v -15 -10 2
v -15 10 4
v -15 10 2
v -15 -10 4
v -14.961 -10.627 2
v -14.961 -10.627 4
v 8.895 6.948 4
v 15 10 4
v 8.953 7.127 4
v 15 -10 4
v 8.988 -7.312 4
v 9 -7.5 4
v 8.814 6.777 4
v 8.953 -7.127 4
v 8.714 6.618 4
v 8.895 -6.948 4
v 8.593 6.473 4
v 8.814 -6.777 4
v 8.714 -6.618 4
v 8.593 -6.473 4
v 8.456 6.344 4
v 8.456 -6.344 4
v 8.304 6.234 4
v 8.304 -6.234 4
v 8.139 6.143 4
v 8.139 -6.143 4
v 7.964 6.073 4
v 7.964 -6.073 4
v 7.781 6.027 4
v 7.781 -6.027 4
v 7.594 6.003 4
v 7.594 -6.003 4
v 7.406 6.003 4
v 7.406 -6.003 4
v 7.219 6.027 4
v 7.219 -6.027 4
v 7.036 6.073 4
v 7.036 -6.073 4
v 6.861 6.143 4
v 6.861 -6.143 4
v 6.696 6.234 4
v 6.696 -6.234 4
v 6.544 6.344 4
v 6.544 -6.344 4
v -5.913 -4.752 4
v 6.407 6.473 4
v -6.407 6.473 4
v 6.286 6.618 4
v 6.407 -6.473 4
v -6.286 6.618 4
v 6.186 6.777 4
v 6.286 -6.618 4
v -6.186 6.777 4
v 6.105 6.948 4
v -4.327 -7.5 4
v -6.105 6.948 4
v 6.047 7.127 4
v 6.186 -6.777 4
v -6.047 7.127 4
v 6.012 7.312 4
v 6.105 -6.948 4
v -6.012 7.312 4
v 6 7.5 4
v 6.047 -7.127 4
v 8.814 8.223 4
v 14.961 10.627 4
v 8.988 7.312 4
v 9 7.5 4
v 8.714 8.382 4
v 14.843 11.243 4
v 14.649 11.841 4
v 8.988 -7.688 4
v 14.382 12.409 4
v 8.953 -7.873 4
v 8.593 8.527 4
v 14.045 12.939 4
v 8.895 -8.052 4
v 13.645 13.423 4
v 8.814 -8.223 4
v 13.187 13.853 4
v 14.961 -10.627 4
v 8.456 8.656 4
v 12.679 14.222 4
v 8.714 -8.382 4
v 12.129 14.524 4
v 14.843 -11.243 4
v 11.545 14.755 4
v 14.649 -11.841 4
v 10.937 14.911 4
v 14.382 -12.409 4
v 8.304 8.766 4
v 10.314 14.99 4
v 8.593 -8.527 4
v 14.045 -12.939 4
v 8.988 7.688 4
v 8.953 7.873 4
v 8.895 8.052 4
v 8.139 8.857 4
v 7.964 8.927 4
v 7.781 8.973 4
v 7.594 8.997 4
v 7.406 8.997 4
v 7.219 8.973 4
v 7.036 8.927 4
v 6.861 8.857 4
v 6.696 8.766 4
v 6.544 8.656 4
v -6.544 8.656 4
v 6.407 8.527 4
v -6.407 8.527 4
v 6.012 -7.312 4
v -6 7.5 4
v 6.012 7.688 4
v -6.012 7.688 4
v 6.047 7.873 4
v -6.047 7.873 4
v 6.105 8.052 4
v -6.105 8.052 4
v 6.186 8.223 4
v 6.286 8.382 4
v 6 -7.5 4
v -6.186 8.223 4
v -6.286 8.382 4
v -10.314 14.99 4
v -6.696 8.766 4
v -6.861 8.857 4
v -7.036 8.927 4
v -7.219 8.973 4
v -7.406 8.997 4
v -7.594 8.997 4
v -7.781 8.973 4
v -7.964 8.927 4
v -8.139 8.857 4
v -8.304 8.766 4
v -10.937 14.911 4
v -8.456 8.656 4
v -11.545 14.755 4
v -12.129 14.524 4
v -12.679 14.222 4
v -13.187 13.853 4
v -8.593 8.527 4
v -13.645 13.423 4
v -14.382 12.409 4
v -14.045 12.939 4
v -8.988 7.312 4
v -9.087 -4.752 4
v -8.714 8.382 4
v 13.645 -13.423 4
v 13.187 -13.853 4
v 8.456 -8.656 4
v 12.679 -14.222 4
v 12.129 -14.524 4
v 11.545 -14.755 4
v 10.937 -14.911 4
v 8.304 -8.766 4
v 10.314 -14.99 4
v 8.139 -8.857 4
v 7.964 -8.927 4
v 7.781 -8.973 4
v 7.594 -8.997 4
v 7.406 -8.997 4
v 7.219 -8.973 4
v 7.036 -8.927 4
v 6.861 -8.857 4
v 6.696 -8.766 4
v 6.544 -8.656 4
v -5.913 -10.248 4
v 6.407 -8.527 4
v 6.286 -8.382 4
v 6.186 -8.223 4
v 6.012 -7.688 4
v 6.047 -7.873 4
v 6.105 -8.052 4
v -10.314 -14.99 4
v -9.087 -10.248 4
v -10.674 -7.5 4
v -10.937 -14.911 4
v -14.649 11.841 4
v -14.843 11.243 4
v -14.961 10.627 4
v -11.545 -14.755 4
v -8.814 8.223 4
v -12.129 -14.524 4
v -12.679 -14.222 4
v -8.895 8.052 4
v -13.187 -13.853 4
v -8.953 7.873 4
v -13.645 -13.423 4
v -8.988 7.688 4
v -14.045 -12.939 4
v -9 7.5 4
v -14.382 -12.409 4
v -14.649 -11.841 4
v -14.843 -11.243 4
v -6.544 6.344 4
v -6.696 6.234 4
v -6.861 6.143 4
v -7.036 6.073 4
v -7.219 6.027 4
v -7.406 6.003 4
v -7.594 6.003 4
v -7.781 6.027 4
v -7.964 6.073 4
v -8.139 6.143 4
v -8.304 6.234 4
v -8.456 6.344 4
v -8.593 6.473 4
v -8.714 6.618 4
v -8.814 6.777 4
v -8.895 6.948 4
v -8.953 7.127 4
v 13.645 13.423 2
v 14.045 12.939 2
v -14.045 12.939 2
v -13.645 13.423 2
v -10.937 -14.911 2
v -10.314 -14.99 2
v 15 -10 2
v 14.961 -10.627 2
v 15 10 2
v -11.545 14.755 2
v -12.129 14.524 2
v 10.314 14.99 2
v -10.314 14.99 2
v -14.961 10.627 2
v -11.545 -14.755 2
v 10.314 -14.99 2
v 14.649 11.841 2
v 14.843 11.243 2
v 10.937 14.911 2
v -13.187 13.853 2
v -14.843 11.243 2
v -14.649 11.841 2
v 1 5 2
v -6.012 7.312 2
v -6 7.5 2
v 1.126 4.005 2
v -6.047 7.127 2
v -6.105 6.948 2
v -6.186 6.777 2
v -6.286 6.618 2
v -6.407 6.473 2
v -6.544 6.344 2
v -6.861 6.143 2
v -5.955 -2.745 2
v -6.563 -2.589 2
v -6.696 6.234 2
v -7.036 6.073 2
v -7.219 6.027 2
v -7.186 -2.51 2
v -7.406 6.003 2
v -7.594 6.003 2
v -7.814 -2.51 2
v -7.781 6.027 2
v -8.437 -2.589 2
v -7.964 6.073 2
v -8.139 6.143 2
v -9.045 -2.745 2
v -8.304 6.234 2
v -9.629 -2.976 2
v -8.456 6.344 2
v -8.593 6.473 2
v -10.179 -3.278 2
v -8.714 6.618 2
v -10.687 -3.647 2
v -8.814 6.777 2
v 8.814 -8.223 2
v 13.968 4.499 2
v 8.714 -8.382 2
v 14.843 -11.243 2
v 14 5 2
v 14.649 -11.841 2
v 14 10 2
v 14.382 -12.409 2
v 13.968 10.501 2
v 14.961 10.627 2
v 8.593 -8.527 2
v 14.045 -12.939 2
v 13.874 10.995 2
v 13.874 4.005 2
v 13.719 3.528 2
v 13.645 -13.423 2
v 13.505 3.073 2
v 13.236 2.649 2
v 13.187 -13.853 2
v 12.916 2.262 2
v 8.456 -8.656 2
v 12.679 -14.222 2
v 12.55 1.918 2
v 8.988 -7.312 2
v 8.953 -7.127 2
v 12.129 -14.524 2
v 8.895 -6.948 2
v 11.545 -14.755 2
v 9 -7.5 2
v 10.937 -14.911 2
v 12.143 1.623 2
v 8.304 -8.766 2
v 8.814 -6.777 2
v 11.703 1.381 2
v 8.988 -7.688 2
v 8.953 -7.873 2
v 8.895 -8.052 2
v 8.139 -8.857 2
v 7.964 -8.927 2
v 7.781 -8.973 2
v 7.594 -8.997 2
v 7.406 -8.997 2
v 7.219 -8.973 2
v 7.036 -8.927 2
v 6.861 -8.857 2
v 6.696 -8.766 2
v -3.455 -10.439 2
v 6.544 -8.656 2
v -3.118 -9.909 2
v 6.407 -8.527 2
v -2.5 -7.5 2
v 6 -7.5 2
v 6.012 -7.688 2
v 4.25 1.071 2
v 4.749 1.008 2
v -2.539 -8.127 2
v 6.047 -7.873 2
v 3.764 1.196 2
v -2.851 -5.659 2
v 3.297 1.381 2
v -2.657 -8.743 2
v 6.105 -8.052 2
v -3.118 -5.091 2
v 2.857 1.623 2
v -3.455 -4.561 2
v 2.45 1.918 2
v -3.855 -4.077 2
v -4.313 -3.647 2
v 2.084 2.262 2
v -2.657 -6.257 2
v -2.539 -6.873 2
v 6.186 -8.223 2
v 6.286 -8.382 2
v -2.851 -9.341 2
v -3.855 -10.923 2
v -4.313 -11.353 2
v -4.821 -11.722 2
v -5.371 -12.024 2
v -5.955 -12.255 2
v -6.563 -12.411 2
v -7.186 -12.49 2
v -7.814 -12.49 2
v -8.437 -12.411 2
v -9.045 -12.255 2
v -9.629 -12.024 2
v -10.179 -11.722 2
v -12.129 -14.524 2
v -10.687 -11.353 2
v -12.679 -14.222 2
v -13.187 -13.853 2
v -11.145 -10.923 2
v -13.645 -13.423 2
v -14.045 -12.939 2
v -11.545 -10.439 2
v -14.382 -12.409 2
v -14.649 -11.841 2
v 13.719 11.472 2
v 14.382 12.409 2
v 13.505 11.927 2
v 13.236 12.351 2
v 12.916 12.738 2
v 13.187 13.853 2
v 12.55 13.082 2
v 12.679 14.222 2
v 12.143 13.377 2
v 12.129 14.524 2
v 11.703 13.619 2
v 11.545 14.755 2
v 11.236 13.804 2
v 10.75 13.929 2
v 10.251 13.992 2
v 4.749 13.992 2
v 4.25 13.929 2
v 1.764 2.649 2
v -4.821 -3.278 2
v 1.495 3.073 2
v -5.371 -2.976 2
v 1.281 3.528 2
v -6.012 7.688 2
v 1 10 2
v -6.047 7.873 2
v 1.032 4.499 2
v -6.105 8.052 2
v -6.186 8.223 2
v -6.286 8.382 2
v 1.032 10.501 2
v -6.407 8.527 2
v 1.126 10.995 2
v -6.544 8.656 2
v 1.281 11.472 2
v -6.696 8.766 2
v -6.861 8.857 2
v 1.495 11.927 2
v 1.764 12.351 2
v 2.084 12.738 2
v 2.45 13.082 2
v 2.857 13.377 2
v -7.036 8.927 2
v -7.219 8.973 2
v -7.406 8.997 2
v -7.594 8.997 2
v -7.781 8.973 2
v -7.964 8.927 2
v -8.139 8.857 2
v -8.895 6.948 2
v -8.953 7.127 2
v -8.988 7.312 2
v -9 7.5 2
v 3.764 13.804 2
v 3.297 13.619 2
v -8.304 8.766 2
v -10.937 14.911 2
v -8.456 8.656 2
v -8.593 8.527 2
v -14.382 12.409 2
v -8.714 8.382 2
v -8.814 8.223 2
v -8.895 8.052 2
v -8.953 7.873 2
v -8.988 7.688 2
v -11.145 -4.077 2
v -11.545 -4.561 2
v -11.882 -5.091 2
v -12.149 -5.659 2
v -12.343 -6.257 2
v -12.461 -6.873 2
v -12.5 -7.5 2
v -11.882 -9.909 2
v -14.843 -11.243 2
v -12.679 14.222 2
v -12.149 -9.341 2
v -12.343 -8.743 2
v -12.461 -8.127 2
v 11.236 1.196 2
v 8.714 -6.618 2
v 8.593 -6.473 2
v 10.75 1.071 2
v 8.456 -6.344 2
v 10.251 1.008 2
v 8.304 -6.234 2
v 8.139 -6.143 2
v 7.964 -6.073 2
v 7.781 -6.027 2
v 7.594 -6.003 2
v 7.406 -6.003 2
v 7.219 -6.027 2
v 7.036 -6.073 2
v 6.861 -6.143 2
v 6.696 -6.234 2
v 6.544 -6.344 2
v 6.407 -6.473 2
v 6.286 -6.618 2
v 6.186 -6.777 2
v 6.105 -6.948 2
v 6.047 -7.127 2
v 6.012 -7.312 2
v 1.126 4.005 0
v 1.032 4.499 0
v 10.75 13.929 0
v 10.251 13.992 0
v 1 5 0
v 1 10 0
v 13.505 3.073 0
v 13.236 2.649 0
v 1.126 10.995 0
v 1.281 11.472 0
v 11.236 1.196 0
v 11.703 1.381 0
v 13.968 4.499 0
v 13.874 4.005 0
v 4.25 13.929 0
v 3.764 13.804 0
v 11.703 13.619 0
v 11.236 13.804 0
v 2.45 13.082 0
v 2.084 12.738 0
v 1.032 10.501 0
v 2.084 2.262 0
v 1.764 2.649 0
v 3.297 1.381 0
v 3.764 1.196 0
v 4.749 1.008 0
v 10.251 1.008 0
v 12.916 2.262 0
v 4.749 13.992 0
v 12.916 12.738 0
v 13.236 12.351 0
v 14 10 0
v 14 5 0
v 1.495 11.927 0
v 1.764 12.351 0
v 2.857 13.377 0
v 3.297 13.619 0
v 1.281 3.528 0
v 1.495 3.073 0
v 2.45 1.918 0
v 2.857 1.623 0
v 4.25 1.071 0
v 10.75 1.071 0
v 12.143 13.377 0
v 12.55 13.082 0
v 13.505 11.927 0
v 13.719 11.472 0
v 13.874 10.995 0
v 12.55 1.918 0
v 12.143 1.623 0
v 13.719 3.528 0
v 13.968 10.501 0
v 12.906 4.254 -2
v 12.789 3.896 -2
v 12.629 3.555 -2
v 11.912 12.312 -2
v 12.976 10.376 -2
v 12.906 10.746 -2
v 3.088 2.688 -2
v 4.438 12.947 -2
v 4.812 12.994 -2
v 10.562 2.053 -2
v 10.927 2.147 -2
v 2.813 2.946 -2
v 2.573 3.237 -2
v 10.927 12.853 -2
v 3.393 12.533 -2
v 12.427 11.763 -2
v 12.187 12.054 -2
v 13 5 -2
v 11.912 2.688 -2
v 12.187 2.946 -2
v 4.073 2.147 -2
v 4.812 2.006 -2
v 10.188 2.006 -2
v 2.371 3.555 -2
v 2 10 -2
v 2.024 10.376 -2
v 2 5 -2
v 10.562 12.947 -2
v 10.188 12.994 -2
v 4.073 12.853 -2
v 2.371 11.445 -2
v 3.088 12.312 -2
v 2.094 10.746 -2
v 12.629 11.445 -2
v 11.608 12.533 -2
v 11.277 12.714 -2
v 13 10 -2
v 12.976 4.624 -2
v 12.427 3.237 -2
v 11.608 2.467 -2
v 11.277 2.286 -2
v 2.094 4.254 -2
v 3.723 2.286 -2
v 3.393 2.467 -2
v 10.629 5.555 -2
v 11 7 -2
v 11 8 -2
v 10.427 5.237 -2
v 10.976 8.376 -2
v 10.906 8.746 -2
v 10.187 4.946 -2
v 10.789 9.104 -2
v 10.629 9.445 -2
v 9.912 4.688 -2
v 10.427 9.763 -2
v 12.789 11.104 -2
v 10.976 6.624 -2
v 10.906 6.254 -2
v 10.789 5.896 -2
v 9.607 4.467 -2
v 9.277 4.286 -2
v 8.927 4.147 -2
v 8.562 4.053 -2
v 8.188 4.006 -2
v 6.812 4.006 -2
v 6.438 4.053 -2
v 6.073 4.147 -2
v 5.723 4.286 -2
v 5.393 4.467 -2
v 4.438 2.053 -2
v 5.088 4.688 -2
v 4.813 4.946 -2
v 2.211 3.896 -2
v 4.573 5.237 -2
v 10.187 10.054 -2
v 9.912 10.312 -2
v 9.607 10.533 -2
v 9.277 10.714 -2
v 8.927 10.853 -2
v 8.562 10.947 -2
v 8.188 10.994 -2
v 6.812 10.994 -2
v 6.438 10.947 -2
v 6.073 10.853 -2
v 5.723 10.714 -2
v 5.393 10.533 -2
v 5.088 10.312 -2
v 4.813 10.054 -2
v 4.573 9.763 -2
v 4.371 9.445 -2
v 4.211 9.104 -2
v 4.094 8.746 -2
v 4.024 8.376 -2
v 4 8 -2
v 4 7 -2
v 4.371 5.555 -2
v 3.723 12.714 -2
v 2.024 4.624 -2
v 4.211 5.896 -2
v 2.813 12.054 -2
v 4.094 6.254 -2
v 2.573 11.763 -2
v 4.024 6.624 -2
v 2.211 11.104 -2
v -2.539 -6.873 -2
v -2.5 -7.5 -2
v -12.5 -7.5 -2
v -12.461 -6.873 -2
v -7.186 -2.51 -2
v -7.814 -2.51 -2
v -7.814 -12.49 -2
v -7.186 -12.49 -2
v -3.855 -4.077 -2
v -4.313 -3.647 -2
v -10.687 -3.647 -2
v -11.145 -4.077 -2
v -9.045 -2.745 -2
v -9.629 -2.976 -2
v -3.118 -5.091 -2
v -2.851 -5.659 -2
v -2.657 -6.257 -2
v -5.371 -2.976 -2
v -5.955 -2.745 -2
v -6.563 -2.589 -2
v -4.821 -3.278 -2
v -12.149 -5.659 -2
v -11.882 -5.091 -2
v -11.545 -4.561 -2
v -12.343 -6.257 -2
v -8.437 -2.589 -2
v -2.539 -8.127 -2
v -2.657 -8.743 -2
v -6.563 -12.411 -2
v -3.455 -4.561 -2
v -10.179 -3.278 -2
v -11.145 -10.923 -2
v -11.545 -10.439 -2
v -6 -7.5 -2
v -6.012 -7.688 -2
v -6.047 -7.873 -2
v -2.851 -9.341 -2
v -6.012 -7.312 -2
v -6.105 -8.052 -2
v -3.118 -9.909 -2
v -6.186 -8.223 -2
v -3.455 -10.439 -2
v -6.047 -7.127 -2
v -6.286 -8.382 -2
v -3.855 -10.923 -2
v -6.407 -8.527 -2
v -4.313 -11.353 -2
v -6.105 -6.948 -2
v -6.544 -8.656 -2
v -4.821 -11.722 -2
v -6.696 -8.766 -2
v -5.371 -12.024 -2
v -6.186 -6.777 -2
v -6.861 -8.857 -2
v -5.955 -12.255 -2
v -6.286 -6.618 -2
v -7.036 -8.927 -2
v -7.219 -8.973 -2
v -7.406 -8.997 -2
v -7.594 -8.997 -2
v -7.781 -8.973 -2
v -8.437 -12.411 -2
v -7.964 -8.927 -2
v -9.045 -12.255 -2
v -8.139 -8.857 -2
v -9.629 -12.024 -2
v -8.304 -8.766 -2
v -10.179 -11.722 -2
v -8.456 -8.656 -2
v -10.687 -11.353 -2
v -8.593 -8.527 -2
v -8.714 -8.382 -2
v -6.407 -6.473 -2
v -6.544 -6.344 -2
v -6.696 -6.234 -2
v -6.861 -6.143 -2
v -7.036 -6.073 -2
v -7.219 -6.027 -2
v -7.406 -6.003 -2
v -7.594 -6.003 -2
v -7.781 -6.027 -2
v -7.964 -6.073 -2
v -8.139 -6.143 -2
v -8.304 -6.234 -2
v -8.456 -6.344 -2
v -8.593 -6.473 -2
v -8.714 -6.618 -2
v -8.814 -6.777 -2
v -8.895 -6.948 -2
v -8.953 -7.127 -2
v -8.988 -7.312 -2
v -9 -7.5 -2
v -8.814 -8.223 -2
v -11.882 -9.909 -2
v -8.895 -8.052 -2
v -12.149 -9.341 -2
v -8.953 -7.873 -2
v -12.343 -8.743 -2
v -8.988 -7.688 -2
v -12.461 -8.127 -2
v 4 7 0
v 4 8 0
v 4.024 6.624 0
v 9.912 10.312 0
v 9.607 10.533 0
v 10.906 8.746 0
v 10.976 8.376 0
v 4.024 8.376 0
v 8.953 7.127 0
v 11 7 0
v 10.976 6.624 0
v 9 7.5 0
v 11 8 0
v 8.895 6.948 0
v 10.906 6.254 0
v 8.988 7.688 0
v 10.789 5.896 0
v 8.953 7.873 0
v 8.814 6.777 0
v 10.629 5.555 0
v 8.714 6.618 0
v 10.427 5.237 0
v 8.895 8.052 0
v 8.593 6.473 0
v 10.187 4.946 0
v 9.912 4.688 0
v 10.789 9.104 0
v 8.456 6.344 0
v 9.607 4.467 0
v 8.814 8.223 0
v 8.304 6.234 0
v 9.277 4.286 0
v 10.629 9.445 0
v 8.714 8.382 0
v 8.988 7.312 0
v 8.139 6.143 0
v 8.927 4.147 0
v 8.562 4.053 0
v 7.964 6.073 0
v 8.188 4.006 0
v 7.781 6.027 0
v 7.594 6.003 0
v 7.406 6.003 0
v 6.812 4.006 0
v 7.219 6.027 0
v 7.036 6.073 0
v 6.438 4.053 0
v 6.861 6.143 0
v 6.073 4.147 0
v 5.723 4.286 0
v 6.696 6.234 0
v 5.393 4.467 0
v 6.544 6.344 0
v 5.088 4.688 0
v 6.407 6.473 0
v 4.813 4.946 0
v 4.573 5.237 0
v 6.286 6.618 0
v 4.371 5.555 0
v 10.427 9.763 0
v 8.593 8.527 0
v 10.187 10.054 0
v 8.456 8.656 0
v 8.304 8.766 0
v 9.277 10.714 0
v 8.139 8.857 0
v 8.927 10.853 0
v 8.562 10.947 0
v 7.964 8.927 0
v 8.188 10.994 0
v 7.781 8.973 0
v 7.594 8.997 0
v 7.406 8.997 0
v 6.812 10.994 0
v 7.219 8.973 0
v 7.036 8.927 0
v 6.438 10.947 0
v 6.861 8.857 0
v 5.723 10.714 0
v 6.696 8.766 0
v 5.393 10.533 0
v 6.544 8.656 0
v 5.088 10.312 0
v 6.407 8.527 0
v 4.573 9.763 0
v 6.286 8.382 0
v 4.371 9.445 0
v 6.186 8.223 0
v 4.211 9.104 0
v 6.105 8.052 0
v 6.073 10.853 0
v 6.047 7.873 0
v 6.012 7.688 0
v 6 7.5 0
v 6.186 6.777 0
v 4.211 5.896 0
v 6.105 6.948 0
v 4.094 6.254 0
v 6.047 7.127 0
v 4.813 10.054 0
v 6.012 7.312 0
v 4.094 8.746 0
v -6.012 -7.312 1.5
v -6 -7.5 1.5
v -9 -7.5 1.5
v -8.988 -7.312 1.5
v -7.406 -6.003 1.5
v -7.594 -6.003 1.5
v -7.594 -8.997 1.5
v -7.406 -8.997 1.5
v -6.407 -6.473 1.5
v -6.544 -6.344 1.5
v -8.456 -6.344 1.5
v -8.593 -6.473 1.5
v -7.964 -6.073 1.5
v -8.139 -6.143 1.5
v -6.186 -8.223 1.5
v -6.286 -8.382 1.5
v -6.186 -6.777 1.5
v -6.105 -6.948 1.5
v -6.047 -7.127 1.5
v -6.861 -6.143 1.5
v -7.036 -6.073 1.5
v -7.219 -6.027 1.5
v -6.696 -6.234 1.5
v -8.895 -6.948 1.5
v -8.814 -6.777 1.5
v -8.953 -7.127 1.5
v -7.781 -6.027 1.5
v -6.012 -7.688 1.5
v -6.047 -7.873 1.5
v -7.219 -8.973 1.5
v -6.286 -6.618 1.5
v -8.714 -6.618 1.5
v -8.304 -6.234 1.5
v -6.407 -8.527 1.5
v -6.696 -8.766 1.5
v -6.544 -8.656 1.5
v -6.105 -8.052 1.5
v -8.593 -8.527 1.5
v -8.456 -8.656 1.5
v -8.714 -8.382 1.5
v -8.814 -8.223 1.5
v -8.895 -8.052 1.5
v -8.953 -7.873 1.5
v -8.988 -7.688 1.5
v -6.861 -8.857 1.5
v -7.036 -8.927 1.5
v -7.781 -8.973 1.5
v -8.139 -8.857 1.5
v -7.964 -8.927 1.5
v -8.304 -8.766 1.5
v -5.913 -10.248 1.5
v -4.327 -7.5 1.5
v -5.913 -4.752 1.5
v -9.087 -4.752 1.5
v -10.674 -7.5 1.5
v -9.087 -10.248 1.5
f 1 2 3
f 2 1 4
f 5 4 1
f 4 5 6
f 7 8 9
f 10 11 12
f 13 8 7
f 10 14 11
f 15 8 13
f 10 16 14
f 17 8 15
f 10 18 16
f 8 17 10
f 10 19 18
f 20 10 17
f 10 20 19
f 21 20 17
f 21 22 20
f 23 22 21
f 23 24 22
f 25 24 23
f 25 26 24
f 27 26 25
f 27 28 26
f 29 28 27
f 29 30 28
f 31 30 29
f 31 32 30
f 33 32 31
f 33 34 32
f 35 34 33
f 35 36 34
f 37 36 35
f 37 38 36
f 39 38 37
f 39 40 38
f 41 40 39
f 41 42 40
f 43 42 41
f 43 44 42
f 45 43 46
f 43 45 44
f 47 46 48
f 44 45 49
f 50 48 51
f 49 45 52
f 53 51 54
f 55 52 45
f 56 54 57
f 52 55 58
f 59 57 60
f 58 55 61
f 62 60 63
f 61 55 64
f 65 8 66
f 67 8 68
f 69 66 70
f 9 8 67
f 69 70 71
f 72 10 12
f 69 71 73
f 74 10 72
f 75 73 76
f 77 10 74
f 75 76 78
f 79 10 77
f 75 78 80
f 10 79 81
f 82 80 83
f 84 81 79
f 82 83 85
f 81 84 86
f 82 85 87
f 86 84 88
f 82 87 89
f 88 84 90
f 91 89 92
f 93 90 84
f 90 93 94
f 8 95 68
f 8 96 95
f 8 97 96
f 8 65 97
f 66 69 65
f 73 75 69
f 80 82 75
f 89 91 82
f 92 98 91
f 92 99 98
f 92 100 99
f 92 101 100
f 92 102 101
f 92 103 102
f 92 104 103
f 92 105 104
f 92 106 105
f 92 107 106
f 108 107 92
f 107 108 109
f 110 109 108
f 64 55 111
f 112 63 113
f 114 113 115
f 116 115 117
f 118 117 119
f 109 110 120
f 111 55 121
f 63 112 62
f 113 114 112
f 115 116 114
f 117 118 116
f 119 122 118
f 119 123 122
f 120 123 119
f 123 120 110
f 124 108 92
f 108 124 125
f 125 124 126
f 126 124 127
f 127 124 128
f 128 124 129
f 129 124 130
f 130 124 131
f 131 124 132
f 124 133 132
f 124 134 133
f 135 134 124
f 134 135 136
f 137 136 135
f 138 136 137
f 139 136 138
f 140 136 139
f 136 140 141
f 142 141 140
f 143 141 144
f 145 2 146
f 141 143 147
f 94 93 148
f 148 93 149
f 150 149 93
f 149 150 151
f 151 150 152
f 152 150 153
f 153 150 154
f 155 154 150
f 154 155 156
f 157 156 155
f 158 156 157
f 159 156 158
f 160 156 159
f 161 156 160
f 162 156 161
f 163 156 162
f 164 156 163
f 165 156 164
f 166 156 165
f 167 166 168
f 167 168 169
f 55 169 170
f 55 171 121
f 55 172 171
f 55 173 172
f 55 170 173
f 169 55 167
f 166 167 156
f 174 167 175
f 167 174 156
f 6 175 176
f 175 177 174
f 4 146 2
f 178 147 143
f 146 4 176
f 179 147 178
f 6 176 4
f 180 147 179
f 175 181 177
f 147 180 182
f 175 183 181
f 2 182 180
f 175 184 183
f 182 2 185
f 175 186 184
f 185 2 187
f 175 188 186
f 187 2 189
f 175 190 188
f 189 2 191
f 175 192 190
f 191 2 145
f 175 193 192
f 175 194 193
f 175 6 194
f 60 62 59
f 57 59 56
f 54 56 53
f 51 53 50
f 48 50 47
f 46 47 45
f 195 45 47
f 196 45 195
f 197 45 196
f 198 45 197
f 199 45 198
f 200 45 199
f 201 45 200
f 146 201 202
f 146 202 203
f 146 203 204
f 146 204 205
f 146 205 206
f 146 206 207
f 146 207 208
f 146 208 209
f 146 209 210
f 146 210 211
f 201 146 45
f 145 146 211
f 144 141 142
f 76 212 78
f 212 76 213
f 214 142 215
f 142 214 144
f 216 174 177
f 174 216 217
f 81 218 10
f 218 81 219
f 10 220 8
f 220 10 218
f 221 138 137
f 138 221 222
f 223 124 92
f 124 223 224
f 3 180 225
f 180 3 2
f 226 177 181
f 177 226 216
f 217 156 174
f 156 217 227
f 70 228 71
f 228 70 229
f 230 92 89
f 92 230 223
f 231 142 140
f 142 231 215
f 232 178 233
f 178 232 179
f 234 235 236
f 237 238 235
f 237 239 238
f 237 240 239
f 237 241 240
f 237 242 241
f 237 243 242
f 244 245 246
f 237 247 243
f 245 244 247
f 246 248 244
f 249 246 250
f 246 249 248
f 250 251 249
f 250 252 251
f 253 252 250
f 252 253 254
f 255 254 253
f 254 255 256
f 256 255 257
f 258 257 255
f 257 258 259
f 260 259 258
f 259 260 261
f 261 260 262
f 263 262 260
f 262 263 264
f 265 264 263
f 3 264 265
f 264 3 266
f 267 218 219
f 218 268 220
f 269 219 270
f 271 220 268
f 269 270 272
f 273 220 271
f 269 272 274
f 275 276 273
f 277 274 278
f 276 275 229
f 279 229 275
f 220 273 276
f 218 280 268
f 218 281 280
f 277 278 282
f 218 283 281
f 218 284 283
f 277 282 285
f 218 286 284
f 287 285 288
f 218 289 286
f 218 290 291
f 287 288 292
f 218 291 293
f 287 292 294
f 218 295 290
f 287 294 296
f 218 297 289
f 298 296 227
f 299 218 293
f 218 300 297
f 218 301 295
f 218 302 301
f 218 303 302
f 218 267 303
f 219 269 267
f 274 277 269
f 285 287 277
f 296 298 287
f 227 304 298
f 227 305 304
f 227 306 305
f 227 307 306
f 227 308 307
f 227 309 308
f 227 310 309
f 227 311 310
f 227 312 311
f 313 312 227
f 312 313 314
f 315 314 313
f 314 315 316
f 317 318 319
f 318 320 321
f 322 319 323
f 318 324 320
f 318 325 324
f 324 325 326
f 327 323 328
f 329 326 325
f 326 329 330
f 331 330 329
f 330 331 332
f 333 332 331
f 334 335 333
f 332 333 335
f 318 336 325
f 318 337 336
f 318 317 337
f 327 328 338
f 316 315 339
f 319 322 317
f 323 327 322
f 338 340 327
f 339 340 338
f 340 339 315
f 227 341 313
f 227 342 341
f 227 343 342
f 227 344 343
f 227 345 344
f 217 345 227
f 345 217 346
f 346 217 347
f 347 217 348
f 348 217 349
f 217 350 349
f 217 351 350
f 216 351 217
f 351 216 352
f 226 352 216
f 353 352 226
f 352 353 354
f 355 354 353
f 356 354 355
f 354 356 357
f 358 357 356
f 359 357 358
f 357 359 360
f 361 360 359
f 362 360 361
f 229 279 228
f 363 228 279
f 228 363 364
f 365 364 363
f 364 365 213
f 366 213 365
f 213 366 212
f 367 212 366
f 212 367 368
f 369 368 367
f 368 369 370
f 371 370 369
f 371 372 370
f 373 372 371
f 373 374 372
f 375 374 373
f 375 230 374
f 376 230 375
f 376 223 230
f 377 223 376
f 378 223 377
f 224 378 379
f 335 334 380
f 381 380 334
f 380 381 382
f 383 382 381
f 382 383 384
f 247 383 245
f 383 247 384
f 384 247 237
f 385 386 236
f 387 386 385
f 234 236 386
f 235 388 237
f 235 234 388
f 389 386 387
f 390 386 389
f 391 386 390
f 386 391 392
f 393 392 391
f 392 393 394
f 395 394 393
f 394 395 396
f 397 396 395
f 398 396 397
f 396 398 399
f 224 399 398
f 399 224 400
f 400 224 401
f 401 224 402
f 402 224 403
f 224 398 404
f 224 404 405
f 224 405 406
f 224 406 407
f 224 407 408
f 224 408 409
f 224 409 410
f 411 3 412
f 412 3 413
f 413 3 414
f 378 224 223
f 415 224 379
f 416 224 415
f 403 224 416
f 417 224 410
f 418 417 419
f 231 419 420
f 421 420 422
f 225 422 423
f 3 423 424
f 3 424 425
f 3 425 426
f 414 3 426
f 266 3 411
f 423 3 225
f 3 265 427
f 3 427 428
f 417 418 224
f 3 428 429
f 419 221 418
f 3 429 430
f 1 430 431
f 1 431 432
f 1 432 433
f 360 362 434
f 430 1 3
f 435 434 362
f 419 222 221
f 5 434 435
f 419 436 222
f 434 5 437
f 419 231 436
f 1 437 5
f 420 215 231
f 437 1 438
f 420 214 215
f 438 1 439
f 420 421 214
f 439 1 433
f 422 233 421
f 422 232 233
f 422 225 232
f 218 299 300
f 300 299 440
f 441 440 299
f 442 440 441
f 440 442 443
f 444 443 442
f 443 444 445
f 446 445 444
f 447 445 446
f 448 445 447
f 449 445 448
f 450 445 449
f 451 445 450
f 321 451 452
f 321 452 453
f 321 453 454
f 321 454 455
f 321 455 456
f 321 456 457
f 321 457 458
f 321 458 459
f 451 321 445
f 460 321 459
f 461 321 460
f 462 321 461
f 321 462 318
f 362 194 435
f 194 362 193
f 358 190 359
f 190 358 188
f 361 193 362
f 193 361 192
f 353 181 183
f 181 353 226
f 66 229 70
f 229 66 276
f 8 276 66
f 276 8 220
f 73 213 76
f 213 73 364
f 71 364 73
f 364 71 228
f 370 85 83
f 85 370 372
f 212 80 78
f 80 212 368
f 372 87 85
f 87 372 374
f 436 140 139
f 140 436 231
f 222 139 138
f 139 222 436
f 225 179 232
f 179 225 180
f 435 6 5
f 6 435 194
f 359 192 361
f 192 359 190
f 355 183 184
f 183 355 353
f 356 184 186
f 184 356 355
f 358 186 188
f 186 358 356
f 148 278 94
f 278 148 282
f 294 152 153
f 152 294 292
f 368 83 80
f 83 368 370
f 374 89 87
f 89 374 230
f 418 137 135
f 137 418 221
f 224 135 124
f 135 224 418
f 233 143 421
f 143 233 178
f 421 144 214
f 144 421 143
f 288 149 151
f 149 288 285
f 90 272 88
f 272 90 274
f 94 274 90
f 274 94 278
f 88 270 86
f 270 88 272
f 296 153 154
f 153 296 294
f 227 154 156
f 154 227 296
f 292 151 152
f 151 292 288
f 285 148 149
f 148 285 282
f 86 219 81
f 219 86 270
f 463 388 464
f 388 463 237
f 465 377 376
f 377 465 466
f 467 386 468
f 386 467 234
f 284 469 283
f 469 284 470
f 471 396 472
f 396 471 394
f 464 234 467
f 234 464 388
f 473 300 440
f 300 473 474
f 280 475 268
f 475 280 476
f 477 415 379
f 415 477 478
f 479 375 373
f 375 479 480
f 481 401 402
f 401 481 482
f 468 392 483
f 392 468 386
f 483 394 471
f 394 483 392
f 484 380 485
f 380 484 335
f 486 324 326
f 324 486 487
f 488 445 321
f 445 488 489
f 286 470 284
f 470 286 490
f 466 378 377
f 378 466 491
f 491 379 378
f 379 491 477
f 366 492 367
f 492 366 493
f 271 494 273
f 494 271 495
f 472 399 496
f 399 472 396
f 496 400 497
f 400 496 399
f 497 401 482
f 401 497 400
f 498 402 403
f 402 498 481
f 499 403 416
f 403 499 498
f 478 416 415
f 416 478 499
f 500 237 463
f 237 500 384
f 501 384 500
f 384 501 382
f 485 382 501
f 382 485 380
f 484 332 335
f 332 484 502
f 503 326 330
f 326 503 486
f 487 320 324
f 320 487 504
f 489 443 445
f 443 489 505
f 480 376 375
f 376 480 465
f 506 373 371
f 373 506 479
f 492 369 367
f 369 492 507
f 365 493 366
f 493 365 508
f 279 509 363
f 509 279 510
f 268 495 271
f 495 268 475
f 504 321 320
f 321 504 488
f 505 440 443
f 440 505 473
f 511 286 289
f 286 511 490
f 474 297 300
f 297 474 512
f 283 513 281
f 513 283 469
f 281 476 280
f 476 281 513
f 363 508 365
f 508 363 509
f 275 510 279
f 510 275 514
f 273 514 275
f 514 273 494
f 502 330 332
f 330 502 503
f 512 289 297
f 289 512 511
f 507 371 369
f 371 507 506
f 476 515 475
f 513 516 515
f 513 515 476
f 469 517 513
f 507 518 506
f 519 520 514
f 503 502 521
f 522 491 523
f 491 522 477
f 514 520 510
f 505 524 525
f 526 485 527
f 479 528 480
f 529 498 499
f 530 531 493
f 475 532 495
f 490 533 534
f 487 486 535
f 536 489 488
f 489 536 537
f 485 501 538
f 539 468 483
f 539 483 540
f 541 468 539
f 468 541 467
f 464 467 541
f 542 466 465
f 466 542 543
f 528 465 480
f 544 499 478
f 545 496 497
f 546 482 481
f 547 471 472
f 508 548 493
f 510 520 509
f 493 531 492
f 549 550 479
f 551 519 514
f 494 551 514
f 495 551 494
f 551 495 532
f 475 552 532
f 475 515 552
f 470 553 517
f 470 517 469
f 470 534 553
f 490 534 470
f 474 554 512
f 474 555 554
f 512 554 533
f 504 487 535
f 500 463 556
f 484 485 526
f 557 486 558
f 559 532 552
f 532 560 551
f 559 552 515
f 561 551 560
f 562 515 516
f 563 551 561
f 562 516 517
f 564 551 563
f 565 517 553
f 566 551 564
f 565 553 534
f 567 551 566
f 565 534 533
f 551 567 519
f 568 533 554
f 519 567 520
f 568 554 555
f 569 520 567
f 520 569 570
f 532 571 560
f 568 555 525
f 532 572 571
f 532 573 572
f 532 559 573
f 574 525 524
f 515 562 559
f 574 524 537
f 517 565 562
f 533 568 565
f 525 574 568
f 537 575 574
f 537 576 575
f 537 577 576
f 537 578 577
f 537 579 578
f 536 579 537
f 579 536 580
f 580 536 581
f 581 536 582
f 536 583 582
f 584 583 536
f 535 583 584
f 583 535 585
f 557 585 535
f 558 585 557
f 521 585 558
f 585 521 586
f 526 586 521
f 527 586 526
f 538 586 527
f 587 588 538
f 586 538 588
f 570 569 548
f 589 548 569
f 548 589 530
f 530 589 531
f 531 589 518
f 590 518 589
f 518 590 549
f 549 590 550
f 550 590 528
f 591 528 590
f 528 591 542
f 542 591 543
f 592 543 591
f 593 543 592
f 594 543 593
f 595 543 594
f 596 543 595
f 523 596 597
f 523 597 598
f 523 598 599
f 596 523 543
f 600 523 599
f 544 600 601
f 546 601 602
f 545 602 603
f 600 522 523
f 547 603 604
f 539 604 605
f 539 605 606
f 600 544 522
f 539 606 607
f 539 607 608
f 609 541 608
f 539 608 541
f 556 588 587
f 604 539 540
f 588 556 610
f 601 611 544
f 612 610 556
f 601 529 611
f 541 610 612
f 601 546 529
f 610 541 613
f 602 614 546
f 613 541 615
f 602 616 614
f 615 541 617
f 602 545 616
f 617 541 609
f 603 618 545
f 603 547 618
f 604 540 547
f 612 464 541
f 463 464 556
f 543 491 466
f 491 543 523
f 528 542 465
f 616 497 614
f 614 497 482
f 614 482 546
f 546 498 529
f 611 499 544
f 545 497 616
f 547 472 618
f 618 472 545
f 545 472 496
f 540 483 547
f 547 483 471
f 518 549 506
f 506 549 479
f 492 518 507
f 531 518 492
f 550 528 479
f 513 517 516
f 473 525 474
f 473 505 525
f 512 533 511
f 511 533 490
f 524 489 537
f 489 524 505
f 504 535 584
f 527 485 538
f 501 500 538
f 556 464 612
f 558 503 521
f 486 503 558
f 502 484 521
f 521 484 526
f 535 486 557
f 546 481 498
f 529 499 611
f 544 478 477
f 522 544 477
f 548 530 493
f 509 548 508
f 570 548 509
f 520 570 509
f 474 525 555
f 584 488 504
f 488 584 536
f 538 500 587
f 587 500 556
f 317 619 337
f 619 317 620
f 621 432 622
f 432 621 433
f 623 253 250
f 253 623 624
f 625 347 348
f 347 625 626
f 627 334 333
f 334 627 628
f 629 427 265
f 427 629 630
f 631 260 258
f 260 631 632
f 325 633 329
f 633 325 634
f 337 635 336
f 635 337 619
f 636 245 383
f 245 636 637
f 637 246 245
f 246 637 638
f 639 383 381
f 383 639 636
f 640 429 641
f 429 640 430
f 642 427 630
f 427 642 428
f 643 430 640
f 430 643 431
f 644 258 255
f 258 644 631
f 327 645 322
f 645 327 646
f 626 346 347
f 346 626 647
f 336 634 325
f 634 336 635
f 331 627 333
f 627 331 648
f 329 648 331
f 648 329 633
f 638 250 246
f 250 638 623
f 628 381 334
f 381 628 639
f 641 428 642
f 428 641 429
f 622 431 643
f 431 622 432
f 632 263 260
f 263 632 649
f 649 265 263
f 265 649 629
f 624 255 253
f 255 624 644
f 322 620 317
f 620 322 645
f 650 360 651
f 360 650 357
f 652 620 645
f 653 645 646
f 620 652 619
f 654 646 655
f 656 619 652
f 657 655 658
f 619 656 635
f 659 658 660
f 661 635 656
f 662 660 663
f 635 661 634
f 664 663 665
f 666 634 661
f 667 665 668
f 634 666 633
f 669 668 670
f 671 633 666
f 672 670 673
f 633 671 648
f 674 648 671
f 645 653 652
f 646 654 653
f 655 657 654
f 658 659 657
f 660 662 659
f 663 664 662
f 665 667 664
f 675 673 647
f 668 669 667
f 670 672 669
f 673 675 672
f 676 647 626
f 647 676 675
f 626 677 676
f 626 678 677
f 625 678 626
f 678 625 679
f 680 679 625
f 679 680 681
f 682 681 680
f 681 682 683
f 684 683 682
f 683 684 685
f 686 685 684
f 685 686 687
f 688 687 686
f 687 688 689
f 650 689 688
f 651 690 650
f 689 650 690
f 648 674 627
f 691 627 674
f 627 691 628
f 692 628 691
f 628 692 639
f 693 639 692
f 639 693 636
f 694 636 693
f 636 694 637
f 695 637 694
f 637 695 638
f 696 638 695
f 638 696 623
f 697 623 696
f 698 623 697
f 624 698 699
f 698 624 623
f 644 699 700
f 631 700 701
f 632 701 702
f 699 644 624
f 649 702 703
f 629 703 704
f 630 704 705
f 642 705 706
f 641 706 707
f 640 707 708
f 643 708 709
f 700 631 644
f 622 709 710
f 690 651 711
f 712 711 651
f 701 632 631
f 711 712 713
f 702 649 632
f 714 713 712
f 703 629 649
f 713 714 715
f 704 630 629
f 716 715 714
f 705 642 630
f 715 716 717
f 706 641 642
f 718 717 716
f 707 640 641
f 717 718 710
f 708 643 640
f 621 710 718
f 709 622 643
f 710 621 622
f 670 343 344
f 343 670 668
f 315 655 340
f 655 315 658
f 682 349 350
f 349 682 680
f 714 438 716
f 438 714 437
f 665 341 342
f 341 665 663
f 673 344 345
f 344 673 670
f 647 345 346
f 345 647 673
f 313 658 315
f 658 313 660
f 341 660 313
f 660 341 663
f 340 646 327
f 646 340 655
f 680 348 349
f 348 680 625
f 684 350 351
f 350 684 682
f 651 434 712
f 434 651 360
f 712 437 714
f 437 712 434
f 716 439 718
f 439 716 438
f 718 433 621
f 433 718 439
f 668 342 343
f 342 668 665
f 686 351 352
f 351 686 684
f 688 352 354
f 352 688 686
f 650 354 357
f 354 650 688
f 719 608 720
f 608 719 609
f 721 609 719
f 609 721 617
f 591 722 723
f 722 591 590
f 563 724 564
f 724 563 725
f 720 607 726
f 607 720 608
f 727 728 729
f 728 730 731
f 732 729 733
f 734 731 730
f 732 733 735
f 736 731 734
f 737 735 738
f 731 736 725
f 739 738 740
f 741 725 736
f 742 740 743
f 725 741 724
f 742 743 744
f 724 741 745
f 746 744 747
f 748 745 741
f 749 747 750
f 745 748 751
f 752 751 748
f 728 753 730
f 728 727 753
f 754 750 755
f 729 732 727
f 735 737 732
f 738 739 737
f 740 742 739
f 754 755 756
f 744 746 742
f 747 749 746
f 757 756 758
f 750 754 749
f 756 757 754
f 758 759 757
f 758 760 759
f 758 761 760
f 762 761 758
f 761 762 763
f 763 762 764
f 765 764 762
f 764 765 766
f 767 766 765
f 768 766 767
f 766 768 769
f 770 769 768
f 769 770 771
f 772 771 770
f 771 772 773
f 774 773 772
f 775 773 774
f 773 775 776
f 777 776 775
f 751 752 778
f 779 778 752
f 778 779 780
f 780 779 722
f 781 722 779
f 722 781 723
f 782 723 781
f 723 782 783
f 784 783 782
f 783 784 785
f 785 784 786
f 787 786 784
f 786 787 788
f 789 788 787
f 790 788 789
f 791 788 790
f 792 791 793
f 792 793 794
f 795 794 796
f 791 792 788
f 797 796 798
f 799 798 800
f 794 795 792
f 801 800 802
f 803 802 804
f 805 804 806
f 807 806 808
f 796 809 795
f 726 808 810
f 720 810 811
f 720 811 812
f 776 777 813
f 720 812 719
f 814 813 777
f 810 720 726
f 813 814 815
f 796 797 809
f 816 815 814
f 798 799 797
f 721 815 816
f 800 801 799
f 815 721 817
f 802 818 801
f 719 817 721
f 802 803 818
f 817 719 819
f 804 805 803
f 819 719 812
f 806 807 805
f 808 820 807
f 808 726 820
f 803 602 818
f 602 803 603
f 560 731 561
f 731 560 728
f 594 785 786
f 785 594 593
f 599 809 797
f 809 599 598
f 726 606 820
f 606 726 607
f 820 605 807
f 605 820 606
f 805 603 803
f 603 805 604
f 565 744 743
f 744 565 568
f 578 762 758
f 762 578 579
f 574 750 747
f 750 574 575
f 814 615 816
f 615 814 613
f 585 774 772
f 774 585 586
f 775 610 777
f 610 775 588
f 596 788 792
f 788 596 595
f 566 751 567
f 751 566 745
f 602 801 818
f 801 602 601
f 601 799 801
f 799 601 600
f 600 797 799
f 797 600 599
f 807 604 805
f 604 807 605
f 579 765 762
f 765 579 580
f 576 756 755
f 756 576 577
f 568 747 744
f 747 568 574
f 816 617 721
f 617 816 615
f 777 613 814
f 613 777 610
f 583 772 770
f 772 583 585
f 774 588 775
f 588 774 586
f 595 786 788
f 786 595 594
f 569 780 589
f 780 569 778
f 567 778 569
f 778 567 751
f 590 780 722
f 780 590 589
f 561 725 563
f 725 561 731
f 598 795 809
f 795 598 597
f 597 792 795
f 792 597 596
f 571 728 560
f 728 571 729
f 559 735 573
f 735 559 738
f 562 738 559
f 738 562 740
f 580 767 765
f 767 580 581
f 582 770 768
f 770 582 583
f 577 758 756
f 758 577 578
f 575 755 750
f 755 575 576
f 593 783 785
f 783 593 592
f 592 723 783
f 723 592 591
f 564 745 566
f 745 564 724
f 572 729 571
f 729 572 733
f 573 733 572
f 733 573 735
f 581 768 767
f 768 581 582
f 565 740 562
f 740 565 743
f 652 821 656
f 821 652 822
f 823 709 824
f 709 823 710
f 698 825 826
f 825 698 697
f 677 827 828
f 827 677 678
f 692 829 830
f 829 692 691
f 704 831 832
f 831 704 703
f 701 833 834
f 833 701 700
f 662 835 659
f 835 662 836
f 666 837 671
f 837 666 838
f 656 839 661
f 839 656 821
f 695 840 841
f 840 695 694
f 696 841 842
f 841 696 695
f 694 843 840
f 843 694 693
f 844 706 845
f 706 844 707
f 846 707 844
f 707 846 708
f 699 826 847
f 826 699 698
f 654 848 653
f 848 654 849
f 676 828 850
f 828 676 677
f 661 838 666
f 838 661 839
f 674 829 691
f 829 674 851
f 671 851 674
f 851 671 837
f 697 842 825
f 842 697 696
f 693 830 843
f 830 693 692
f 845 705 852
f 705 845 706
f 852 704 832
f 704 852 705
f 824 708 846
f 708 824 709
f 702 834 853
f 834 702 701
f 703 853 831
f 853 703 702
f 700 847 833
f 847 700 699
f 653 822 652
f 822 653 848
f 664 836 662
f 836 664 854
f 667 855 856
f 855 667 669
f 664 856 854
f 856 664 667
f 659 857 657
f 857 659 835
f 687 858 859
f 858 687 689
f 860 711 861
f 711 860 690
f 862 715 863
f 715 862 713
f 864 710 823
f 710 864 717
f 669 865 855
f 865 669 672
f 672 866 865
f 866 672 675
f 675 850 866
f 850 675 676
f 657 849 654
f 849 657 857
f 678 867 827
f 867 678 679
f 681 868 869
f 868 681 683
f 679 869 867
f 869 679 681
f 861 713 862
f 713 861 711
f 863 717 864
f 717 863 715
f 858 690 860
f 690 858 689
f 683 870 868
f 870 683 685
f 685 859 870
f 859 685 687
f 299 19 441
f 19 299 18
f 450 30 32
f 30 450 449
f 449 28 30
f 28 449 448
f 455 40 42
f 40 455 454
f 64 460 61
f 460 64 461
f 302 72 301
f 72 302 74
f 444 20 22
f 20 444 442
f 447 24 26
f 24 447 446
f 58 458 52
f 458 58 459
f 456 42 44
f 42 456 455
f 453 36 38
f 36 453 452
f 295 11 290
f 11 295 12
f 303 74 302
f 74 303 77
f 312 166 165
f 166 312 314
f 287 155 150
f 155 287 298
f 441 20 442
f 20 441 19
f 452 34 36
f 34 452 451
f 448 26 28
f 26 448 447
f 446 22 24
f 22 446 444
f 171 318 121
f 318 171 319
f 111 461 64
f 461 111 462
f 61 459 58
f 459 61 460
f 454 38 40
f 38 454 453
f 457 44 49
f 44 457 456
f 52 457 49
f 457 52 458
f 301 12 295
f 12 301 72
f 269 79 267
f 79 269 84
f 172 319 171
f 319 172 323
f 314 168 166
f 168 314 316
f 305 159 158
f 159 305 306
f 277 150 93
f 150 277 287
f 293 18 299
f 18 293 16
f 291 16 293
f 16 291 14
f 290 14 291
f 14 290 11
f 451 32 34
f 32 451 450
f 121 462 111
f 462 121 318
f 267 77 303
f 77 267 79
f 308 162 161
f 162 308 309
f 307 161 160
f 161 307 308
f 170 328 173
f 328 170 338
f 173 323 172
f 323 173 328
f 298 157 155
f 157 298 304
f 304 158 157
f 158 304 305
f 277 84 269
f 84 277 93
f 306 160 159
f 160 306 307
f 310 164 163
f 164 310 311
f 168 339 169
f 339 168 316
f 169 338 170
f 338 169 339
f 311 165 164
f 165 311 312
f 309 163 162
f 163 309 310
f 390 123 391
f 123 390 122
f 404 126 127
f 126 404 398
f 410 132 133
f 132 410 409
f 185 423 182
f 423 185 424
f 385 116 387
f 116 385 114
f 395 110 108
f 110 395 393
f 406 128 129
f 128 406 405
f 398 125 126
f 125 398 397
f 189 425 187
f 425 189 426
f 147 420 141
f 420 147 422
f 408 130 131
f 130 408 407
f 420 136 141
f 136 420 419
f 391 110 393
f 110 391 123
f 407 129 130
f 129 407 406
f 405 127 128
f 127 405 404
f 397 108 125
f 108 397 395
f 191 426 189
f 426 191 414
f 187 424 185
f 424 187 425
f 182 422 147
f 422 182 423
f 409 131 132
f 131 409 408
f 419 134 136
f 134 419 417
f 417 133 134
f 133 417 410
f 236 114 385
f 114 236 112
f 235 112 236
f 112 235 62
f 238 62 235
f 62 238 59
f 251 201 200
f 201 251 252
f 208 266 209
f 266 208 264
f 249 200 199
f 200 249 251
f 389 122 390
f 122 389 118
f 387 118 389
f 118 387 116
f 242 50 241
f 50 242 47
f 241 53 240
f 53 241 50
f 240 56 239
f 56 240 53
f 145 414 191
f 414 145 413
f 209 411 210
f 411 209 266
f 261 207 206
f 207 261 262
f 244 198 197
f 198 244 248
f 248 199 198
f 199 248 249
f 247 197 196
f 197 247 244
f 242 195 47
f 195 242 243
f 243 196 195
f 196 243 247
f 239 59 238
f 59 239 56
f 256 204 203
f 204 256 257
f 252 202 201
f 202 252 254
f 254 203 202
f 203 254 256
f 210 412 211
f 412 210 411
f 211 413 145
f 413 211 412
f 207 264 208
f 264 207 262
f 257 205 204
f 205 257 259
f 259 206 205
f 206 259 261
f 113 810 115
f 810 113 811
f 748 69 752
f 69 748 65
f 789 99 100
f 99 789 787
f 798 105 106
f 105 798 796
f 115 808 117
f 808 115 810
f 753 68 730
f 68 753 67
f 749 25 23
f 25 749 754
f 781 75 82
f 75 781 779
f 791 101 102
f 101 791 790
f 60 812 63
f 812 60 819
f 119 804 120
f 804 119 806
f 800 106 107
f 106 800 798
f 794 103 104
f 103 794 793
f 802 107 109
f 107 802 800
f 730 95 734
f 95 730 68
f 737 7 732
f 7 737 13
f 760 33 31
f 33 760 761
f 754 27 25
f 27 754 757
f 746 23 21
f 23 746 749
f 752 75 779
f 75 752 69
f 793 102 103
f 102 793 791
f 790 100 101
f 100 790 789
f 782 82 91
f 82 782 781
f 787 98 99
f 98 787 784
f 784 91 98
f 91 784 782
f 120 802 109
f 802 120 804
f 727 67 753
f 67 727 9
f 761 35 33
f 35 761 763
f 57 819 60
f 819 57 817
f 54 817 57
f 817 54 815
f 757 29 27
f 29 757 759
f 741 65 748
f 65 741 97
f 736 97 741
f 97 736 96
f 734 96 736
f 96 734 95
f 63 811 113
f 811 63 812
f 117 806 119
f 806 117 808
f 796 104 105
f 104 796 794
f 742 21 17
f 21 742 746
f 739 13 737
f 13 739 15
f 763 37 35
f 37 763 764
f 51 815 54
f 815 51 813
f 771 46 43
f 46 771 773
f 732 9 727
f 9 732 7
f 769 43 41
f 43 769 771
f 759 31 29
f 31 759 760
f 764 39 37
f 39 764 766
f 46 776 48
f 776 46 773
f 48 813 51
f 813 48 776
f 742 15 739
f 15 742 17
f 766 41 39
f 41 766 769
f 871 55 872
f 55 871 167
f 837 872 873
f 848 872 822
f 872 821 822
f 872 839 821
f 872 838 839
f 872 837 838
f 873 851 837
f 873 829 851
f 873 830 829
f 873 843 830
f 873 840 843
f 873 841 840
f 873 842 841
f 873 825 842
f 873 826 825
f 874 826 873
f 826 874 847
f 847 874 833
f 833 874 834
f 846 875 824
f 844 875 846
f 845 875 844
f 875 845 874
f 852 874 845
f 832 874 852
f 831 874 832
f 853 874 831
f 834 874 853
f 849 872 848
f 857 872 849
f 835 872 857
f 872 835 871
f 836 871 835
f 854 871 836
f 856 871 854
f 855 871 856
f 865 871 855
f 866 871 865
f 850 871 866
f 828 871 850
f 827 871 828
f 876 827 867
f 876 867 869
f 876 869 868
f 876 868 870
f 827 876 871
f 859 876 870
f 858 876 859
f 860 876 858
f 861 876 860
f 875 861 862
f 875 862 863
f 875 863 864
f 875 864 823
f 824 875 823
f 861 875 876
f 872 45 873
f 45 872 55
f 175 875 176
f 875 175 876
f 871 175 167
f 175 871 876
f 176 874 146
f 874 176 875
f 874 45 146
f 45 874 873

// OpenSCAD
$fn = 50;


difference() {
	union() {
		translate(v = [0, 0, 2]) {
			rotate(a = [0, 0, 0]) {
				hull() {
					translate(v = [-10.0000000000, 10.0000000000, 0]) {
						rotate(a = [0, 0, 0]) {
							translate(v = [0, 0, 0]) {
								rotate(a = [0, 0, 0]) {
									cylinder(h = 2, r = 5);
								}
							}
						}
					}
					translate(v = [10.0000000000, 10.0000000000, 0]) {
						rotate(a = [0, 0, 0]) {
							translate(v = [0, 0, 0]) {
								rotate(a = [0, 0, 0]) {
									cylinder(h = 2, r = 5);
								}
							}
						}
					}
					translate(v = [-10.0000000000, -10.0000000000, 0]) {
						rotate(a = [0, 0, 0]) {
							translate(v = [0, 0, 0]) {
								rotate(a = [0, 0, 0]) {
									cylinder(h = 2, r = 5);
								}
							}
						}
					}
					translate(v = [10.0000000000, -10.0000000000, 0]) {
						rotate(a = [0, 0, 0]) {
							translate(v = [0, 0, 0]) {
								rotate(a = [0, 0, 0]) {
									cylinder(h = 2, r = 5);
								}
							}
						}
					}
				}
			}
		}
		translate(v = [7.5000000000, 7.5000000000, 0]) {
			rotate(a = [0, 0, 0]) {
				hull() {
					translate(v = [-2.5000000000, 2.5000000000, 0]) {
						rotate(a = [0, 0, 0]) {
							cylinder(h = 2, r1 = 4.0000000000, r2 = 4.0000000000);
						}
					}
					translate(v = [2.5000000000, 2.5000000000, 0]) {
						rotate(a = [0, 0, 0]) {
							cylinder(h = 2, r1 = 4.0000000000, r2 = 4.0000000000);
						}
					}
					translate(v = [-2.5000000000, -2.5000000000, 0]) {
						rotate(a = [0, 0, 0]) {
							cylinder(h = 2, r1 = 4.0000000000, r2 = 4.0000000000);
						}
					}
					translate(v = [2.5000000000, -2.5000000000, 0]) {
						rotate(a = [0, 0, 0]) {
							cylinder(h = 2, r1 = 4.0000000000, r2 = 4.0000000000);
						}
					}
				}
			}
		}
		translate(v = [7.5000000000, 7.5000000000, -2]) {
			rotate(a = [0, 180, 0]) {
				hull() {
					translate(v = [-2.5000000000, 2.5000000000, 0]) {
						rotate(a = [0, 180, 0]) {
							cylinder(h = 2, r1 = 3.0000000000, r2 = 4.0000000000);
						}
					}
					translate(v = [2.5000000000, 2.5000000000, 0]) {
						rotate(a = [0, 180, 0]) {
							cylinder(h = 2, r1 = 3.0000000000, r2 = 4.0000000000);
						}
					}
					translate(v = [-2.5000000000, -2.5000000000, 0]) {
						rotate(a = [0, 180, 0]) {
							cylinder(h = 2, r1 = 3.0000000000, r2 = 4.0000000000);
						}
					}
					translate(v = [2.5000000000, -2.5000000000, 0]) {
						rotate(a = [0, 180, 0]) {
							cylinder(h = 2, r1 = 3.0000000000, r2 = 4.0000000000);
						}
					}
				}
			}
		}
		translate(v = [-7.5000000000, -7.5000000000, -2.0000000000]) {
			rotate(a = [0, 0, 0]) {
				cylinder(h = 4, r = 5);
			}
		}
	}
	union() {
		translate(v = [7.5000000000, 7.5000000000, -2]) {
			rotate(a = [0, 0, 0]) {
				hull() {
					translate(v = [-0.5000000000, 0.5000000000, 0]) {
						rotate(a = [0, 0, 0]) {
							translate(v = [0, 0, 0]) {
								rotate(a = [0, 0, 0]) {
									cylinder(h = 2, r = 3.0000000000);
								}
							}
						}
					}
					translate(v = [0.5000000000, 0.5000000000, 0]) {
						rotate(a = [0, 0, 0]) {
							translate(v = [0, 0, 0]) {
								rotate(a = [0, 0, 0]) {
									cylinder(h = 2, r = 3.0000000000);
								}
							}
						}
					}
					translate(v = [-0.5000000000, -0.5000000000, 0]) {
						rotate(a = [0, 0, 0]) {
							translate(v = [0, 0, 0]) {
								rotate(a = [0, 0, 0]) {
									cylinder(h = 2, r = 3.0000000000);
								}
							}
						}
					}
					translate(v = [0.5000000000, -0.5000000000, 0]) {
						rotate(a = [0, 0, 0]) {
							translate(v = [0, 0, 0]) {
								rotate(a = [0, 0, 0]) {
									cylinder(h = 2, r = 3.0000000000);
								}
							}
						}
					}
				}
			}
		}
		translate(v = [-7.5000000000, -7.5000000000, -50]) {
			rotate(a = [0, 0, 0]) {
				cylinder(h = 100, r = 1.5000000000);
			}
		}
		translate(v = [7.5000000000, -7.5000000000, -50]) {
			rotate(a = [0, 0, 0]) {
				cylinder(h = 100, r = 1.5000000000);
			}
		}
		translate(v = [-7.5000000000, 7.5000000000, -50]) {
			rotate(a = [0, 0, 0]) {
				cylinder(h = 100, r = 1.5000000000);
			}
		}
		translate(v = [7.5000000000, 7.5000000000, -50]) {
			rotate(a = [0, 0, 0]) {
				cylinder(h = 100, r = 1.5000000000);
			}
		}
		translate(v = [-7.5000000000, -7.5000000000, 1.5000000000]) {
			rotate(a = [0, 0, 0]) {
				#translate(v = [0, 0, 0]) {
					rotate(a = [0, 0, 0]) {
						linear_extrude(height = 2.5000000000) {
							polygon(points = [[3.1735000000, 0.0000000000], [1.5867500000, 2.7483316189], [-1.5867500000, 2.7483316189], [-3.1735000000, 0.0000000000], [-1.5867500000, -2.7483316189], [1.5867500000, -2.7483316189]]);
						}
					}
				}
			}
		}
	}
}
